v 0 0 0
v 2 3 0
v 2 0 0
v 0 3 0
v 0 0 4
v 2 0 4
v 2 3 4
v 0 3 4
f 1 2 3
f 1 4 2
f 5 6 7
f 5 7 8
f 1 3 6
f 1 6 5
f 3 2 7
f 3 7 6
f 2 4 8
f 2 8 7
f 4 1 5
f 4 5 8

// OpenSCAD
// Analytic mesh target: AABB 2 x 3 x 4, area 52, volume 24 modelUnits^3.
cube([2,3,4]);
